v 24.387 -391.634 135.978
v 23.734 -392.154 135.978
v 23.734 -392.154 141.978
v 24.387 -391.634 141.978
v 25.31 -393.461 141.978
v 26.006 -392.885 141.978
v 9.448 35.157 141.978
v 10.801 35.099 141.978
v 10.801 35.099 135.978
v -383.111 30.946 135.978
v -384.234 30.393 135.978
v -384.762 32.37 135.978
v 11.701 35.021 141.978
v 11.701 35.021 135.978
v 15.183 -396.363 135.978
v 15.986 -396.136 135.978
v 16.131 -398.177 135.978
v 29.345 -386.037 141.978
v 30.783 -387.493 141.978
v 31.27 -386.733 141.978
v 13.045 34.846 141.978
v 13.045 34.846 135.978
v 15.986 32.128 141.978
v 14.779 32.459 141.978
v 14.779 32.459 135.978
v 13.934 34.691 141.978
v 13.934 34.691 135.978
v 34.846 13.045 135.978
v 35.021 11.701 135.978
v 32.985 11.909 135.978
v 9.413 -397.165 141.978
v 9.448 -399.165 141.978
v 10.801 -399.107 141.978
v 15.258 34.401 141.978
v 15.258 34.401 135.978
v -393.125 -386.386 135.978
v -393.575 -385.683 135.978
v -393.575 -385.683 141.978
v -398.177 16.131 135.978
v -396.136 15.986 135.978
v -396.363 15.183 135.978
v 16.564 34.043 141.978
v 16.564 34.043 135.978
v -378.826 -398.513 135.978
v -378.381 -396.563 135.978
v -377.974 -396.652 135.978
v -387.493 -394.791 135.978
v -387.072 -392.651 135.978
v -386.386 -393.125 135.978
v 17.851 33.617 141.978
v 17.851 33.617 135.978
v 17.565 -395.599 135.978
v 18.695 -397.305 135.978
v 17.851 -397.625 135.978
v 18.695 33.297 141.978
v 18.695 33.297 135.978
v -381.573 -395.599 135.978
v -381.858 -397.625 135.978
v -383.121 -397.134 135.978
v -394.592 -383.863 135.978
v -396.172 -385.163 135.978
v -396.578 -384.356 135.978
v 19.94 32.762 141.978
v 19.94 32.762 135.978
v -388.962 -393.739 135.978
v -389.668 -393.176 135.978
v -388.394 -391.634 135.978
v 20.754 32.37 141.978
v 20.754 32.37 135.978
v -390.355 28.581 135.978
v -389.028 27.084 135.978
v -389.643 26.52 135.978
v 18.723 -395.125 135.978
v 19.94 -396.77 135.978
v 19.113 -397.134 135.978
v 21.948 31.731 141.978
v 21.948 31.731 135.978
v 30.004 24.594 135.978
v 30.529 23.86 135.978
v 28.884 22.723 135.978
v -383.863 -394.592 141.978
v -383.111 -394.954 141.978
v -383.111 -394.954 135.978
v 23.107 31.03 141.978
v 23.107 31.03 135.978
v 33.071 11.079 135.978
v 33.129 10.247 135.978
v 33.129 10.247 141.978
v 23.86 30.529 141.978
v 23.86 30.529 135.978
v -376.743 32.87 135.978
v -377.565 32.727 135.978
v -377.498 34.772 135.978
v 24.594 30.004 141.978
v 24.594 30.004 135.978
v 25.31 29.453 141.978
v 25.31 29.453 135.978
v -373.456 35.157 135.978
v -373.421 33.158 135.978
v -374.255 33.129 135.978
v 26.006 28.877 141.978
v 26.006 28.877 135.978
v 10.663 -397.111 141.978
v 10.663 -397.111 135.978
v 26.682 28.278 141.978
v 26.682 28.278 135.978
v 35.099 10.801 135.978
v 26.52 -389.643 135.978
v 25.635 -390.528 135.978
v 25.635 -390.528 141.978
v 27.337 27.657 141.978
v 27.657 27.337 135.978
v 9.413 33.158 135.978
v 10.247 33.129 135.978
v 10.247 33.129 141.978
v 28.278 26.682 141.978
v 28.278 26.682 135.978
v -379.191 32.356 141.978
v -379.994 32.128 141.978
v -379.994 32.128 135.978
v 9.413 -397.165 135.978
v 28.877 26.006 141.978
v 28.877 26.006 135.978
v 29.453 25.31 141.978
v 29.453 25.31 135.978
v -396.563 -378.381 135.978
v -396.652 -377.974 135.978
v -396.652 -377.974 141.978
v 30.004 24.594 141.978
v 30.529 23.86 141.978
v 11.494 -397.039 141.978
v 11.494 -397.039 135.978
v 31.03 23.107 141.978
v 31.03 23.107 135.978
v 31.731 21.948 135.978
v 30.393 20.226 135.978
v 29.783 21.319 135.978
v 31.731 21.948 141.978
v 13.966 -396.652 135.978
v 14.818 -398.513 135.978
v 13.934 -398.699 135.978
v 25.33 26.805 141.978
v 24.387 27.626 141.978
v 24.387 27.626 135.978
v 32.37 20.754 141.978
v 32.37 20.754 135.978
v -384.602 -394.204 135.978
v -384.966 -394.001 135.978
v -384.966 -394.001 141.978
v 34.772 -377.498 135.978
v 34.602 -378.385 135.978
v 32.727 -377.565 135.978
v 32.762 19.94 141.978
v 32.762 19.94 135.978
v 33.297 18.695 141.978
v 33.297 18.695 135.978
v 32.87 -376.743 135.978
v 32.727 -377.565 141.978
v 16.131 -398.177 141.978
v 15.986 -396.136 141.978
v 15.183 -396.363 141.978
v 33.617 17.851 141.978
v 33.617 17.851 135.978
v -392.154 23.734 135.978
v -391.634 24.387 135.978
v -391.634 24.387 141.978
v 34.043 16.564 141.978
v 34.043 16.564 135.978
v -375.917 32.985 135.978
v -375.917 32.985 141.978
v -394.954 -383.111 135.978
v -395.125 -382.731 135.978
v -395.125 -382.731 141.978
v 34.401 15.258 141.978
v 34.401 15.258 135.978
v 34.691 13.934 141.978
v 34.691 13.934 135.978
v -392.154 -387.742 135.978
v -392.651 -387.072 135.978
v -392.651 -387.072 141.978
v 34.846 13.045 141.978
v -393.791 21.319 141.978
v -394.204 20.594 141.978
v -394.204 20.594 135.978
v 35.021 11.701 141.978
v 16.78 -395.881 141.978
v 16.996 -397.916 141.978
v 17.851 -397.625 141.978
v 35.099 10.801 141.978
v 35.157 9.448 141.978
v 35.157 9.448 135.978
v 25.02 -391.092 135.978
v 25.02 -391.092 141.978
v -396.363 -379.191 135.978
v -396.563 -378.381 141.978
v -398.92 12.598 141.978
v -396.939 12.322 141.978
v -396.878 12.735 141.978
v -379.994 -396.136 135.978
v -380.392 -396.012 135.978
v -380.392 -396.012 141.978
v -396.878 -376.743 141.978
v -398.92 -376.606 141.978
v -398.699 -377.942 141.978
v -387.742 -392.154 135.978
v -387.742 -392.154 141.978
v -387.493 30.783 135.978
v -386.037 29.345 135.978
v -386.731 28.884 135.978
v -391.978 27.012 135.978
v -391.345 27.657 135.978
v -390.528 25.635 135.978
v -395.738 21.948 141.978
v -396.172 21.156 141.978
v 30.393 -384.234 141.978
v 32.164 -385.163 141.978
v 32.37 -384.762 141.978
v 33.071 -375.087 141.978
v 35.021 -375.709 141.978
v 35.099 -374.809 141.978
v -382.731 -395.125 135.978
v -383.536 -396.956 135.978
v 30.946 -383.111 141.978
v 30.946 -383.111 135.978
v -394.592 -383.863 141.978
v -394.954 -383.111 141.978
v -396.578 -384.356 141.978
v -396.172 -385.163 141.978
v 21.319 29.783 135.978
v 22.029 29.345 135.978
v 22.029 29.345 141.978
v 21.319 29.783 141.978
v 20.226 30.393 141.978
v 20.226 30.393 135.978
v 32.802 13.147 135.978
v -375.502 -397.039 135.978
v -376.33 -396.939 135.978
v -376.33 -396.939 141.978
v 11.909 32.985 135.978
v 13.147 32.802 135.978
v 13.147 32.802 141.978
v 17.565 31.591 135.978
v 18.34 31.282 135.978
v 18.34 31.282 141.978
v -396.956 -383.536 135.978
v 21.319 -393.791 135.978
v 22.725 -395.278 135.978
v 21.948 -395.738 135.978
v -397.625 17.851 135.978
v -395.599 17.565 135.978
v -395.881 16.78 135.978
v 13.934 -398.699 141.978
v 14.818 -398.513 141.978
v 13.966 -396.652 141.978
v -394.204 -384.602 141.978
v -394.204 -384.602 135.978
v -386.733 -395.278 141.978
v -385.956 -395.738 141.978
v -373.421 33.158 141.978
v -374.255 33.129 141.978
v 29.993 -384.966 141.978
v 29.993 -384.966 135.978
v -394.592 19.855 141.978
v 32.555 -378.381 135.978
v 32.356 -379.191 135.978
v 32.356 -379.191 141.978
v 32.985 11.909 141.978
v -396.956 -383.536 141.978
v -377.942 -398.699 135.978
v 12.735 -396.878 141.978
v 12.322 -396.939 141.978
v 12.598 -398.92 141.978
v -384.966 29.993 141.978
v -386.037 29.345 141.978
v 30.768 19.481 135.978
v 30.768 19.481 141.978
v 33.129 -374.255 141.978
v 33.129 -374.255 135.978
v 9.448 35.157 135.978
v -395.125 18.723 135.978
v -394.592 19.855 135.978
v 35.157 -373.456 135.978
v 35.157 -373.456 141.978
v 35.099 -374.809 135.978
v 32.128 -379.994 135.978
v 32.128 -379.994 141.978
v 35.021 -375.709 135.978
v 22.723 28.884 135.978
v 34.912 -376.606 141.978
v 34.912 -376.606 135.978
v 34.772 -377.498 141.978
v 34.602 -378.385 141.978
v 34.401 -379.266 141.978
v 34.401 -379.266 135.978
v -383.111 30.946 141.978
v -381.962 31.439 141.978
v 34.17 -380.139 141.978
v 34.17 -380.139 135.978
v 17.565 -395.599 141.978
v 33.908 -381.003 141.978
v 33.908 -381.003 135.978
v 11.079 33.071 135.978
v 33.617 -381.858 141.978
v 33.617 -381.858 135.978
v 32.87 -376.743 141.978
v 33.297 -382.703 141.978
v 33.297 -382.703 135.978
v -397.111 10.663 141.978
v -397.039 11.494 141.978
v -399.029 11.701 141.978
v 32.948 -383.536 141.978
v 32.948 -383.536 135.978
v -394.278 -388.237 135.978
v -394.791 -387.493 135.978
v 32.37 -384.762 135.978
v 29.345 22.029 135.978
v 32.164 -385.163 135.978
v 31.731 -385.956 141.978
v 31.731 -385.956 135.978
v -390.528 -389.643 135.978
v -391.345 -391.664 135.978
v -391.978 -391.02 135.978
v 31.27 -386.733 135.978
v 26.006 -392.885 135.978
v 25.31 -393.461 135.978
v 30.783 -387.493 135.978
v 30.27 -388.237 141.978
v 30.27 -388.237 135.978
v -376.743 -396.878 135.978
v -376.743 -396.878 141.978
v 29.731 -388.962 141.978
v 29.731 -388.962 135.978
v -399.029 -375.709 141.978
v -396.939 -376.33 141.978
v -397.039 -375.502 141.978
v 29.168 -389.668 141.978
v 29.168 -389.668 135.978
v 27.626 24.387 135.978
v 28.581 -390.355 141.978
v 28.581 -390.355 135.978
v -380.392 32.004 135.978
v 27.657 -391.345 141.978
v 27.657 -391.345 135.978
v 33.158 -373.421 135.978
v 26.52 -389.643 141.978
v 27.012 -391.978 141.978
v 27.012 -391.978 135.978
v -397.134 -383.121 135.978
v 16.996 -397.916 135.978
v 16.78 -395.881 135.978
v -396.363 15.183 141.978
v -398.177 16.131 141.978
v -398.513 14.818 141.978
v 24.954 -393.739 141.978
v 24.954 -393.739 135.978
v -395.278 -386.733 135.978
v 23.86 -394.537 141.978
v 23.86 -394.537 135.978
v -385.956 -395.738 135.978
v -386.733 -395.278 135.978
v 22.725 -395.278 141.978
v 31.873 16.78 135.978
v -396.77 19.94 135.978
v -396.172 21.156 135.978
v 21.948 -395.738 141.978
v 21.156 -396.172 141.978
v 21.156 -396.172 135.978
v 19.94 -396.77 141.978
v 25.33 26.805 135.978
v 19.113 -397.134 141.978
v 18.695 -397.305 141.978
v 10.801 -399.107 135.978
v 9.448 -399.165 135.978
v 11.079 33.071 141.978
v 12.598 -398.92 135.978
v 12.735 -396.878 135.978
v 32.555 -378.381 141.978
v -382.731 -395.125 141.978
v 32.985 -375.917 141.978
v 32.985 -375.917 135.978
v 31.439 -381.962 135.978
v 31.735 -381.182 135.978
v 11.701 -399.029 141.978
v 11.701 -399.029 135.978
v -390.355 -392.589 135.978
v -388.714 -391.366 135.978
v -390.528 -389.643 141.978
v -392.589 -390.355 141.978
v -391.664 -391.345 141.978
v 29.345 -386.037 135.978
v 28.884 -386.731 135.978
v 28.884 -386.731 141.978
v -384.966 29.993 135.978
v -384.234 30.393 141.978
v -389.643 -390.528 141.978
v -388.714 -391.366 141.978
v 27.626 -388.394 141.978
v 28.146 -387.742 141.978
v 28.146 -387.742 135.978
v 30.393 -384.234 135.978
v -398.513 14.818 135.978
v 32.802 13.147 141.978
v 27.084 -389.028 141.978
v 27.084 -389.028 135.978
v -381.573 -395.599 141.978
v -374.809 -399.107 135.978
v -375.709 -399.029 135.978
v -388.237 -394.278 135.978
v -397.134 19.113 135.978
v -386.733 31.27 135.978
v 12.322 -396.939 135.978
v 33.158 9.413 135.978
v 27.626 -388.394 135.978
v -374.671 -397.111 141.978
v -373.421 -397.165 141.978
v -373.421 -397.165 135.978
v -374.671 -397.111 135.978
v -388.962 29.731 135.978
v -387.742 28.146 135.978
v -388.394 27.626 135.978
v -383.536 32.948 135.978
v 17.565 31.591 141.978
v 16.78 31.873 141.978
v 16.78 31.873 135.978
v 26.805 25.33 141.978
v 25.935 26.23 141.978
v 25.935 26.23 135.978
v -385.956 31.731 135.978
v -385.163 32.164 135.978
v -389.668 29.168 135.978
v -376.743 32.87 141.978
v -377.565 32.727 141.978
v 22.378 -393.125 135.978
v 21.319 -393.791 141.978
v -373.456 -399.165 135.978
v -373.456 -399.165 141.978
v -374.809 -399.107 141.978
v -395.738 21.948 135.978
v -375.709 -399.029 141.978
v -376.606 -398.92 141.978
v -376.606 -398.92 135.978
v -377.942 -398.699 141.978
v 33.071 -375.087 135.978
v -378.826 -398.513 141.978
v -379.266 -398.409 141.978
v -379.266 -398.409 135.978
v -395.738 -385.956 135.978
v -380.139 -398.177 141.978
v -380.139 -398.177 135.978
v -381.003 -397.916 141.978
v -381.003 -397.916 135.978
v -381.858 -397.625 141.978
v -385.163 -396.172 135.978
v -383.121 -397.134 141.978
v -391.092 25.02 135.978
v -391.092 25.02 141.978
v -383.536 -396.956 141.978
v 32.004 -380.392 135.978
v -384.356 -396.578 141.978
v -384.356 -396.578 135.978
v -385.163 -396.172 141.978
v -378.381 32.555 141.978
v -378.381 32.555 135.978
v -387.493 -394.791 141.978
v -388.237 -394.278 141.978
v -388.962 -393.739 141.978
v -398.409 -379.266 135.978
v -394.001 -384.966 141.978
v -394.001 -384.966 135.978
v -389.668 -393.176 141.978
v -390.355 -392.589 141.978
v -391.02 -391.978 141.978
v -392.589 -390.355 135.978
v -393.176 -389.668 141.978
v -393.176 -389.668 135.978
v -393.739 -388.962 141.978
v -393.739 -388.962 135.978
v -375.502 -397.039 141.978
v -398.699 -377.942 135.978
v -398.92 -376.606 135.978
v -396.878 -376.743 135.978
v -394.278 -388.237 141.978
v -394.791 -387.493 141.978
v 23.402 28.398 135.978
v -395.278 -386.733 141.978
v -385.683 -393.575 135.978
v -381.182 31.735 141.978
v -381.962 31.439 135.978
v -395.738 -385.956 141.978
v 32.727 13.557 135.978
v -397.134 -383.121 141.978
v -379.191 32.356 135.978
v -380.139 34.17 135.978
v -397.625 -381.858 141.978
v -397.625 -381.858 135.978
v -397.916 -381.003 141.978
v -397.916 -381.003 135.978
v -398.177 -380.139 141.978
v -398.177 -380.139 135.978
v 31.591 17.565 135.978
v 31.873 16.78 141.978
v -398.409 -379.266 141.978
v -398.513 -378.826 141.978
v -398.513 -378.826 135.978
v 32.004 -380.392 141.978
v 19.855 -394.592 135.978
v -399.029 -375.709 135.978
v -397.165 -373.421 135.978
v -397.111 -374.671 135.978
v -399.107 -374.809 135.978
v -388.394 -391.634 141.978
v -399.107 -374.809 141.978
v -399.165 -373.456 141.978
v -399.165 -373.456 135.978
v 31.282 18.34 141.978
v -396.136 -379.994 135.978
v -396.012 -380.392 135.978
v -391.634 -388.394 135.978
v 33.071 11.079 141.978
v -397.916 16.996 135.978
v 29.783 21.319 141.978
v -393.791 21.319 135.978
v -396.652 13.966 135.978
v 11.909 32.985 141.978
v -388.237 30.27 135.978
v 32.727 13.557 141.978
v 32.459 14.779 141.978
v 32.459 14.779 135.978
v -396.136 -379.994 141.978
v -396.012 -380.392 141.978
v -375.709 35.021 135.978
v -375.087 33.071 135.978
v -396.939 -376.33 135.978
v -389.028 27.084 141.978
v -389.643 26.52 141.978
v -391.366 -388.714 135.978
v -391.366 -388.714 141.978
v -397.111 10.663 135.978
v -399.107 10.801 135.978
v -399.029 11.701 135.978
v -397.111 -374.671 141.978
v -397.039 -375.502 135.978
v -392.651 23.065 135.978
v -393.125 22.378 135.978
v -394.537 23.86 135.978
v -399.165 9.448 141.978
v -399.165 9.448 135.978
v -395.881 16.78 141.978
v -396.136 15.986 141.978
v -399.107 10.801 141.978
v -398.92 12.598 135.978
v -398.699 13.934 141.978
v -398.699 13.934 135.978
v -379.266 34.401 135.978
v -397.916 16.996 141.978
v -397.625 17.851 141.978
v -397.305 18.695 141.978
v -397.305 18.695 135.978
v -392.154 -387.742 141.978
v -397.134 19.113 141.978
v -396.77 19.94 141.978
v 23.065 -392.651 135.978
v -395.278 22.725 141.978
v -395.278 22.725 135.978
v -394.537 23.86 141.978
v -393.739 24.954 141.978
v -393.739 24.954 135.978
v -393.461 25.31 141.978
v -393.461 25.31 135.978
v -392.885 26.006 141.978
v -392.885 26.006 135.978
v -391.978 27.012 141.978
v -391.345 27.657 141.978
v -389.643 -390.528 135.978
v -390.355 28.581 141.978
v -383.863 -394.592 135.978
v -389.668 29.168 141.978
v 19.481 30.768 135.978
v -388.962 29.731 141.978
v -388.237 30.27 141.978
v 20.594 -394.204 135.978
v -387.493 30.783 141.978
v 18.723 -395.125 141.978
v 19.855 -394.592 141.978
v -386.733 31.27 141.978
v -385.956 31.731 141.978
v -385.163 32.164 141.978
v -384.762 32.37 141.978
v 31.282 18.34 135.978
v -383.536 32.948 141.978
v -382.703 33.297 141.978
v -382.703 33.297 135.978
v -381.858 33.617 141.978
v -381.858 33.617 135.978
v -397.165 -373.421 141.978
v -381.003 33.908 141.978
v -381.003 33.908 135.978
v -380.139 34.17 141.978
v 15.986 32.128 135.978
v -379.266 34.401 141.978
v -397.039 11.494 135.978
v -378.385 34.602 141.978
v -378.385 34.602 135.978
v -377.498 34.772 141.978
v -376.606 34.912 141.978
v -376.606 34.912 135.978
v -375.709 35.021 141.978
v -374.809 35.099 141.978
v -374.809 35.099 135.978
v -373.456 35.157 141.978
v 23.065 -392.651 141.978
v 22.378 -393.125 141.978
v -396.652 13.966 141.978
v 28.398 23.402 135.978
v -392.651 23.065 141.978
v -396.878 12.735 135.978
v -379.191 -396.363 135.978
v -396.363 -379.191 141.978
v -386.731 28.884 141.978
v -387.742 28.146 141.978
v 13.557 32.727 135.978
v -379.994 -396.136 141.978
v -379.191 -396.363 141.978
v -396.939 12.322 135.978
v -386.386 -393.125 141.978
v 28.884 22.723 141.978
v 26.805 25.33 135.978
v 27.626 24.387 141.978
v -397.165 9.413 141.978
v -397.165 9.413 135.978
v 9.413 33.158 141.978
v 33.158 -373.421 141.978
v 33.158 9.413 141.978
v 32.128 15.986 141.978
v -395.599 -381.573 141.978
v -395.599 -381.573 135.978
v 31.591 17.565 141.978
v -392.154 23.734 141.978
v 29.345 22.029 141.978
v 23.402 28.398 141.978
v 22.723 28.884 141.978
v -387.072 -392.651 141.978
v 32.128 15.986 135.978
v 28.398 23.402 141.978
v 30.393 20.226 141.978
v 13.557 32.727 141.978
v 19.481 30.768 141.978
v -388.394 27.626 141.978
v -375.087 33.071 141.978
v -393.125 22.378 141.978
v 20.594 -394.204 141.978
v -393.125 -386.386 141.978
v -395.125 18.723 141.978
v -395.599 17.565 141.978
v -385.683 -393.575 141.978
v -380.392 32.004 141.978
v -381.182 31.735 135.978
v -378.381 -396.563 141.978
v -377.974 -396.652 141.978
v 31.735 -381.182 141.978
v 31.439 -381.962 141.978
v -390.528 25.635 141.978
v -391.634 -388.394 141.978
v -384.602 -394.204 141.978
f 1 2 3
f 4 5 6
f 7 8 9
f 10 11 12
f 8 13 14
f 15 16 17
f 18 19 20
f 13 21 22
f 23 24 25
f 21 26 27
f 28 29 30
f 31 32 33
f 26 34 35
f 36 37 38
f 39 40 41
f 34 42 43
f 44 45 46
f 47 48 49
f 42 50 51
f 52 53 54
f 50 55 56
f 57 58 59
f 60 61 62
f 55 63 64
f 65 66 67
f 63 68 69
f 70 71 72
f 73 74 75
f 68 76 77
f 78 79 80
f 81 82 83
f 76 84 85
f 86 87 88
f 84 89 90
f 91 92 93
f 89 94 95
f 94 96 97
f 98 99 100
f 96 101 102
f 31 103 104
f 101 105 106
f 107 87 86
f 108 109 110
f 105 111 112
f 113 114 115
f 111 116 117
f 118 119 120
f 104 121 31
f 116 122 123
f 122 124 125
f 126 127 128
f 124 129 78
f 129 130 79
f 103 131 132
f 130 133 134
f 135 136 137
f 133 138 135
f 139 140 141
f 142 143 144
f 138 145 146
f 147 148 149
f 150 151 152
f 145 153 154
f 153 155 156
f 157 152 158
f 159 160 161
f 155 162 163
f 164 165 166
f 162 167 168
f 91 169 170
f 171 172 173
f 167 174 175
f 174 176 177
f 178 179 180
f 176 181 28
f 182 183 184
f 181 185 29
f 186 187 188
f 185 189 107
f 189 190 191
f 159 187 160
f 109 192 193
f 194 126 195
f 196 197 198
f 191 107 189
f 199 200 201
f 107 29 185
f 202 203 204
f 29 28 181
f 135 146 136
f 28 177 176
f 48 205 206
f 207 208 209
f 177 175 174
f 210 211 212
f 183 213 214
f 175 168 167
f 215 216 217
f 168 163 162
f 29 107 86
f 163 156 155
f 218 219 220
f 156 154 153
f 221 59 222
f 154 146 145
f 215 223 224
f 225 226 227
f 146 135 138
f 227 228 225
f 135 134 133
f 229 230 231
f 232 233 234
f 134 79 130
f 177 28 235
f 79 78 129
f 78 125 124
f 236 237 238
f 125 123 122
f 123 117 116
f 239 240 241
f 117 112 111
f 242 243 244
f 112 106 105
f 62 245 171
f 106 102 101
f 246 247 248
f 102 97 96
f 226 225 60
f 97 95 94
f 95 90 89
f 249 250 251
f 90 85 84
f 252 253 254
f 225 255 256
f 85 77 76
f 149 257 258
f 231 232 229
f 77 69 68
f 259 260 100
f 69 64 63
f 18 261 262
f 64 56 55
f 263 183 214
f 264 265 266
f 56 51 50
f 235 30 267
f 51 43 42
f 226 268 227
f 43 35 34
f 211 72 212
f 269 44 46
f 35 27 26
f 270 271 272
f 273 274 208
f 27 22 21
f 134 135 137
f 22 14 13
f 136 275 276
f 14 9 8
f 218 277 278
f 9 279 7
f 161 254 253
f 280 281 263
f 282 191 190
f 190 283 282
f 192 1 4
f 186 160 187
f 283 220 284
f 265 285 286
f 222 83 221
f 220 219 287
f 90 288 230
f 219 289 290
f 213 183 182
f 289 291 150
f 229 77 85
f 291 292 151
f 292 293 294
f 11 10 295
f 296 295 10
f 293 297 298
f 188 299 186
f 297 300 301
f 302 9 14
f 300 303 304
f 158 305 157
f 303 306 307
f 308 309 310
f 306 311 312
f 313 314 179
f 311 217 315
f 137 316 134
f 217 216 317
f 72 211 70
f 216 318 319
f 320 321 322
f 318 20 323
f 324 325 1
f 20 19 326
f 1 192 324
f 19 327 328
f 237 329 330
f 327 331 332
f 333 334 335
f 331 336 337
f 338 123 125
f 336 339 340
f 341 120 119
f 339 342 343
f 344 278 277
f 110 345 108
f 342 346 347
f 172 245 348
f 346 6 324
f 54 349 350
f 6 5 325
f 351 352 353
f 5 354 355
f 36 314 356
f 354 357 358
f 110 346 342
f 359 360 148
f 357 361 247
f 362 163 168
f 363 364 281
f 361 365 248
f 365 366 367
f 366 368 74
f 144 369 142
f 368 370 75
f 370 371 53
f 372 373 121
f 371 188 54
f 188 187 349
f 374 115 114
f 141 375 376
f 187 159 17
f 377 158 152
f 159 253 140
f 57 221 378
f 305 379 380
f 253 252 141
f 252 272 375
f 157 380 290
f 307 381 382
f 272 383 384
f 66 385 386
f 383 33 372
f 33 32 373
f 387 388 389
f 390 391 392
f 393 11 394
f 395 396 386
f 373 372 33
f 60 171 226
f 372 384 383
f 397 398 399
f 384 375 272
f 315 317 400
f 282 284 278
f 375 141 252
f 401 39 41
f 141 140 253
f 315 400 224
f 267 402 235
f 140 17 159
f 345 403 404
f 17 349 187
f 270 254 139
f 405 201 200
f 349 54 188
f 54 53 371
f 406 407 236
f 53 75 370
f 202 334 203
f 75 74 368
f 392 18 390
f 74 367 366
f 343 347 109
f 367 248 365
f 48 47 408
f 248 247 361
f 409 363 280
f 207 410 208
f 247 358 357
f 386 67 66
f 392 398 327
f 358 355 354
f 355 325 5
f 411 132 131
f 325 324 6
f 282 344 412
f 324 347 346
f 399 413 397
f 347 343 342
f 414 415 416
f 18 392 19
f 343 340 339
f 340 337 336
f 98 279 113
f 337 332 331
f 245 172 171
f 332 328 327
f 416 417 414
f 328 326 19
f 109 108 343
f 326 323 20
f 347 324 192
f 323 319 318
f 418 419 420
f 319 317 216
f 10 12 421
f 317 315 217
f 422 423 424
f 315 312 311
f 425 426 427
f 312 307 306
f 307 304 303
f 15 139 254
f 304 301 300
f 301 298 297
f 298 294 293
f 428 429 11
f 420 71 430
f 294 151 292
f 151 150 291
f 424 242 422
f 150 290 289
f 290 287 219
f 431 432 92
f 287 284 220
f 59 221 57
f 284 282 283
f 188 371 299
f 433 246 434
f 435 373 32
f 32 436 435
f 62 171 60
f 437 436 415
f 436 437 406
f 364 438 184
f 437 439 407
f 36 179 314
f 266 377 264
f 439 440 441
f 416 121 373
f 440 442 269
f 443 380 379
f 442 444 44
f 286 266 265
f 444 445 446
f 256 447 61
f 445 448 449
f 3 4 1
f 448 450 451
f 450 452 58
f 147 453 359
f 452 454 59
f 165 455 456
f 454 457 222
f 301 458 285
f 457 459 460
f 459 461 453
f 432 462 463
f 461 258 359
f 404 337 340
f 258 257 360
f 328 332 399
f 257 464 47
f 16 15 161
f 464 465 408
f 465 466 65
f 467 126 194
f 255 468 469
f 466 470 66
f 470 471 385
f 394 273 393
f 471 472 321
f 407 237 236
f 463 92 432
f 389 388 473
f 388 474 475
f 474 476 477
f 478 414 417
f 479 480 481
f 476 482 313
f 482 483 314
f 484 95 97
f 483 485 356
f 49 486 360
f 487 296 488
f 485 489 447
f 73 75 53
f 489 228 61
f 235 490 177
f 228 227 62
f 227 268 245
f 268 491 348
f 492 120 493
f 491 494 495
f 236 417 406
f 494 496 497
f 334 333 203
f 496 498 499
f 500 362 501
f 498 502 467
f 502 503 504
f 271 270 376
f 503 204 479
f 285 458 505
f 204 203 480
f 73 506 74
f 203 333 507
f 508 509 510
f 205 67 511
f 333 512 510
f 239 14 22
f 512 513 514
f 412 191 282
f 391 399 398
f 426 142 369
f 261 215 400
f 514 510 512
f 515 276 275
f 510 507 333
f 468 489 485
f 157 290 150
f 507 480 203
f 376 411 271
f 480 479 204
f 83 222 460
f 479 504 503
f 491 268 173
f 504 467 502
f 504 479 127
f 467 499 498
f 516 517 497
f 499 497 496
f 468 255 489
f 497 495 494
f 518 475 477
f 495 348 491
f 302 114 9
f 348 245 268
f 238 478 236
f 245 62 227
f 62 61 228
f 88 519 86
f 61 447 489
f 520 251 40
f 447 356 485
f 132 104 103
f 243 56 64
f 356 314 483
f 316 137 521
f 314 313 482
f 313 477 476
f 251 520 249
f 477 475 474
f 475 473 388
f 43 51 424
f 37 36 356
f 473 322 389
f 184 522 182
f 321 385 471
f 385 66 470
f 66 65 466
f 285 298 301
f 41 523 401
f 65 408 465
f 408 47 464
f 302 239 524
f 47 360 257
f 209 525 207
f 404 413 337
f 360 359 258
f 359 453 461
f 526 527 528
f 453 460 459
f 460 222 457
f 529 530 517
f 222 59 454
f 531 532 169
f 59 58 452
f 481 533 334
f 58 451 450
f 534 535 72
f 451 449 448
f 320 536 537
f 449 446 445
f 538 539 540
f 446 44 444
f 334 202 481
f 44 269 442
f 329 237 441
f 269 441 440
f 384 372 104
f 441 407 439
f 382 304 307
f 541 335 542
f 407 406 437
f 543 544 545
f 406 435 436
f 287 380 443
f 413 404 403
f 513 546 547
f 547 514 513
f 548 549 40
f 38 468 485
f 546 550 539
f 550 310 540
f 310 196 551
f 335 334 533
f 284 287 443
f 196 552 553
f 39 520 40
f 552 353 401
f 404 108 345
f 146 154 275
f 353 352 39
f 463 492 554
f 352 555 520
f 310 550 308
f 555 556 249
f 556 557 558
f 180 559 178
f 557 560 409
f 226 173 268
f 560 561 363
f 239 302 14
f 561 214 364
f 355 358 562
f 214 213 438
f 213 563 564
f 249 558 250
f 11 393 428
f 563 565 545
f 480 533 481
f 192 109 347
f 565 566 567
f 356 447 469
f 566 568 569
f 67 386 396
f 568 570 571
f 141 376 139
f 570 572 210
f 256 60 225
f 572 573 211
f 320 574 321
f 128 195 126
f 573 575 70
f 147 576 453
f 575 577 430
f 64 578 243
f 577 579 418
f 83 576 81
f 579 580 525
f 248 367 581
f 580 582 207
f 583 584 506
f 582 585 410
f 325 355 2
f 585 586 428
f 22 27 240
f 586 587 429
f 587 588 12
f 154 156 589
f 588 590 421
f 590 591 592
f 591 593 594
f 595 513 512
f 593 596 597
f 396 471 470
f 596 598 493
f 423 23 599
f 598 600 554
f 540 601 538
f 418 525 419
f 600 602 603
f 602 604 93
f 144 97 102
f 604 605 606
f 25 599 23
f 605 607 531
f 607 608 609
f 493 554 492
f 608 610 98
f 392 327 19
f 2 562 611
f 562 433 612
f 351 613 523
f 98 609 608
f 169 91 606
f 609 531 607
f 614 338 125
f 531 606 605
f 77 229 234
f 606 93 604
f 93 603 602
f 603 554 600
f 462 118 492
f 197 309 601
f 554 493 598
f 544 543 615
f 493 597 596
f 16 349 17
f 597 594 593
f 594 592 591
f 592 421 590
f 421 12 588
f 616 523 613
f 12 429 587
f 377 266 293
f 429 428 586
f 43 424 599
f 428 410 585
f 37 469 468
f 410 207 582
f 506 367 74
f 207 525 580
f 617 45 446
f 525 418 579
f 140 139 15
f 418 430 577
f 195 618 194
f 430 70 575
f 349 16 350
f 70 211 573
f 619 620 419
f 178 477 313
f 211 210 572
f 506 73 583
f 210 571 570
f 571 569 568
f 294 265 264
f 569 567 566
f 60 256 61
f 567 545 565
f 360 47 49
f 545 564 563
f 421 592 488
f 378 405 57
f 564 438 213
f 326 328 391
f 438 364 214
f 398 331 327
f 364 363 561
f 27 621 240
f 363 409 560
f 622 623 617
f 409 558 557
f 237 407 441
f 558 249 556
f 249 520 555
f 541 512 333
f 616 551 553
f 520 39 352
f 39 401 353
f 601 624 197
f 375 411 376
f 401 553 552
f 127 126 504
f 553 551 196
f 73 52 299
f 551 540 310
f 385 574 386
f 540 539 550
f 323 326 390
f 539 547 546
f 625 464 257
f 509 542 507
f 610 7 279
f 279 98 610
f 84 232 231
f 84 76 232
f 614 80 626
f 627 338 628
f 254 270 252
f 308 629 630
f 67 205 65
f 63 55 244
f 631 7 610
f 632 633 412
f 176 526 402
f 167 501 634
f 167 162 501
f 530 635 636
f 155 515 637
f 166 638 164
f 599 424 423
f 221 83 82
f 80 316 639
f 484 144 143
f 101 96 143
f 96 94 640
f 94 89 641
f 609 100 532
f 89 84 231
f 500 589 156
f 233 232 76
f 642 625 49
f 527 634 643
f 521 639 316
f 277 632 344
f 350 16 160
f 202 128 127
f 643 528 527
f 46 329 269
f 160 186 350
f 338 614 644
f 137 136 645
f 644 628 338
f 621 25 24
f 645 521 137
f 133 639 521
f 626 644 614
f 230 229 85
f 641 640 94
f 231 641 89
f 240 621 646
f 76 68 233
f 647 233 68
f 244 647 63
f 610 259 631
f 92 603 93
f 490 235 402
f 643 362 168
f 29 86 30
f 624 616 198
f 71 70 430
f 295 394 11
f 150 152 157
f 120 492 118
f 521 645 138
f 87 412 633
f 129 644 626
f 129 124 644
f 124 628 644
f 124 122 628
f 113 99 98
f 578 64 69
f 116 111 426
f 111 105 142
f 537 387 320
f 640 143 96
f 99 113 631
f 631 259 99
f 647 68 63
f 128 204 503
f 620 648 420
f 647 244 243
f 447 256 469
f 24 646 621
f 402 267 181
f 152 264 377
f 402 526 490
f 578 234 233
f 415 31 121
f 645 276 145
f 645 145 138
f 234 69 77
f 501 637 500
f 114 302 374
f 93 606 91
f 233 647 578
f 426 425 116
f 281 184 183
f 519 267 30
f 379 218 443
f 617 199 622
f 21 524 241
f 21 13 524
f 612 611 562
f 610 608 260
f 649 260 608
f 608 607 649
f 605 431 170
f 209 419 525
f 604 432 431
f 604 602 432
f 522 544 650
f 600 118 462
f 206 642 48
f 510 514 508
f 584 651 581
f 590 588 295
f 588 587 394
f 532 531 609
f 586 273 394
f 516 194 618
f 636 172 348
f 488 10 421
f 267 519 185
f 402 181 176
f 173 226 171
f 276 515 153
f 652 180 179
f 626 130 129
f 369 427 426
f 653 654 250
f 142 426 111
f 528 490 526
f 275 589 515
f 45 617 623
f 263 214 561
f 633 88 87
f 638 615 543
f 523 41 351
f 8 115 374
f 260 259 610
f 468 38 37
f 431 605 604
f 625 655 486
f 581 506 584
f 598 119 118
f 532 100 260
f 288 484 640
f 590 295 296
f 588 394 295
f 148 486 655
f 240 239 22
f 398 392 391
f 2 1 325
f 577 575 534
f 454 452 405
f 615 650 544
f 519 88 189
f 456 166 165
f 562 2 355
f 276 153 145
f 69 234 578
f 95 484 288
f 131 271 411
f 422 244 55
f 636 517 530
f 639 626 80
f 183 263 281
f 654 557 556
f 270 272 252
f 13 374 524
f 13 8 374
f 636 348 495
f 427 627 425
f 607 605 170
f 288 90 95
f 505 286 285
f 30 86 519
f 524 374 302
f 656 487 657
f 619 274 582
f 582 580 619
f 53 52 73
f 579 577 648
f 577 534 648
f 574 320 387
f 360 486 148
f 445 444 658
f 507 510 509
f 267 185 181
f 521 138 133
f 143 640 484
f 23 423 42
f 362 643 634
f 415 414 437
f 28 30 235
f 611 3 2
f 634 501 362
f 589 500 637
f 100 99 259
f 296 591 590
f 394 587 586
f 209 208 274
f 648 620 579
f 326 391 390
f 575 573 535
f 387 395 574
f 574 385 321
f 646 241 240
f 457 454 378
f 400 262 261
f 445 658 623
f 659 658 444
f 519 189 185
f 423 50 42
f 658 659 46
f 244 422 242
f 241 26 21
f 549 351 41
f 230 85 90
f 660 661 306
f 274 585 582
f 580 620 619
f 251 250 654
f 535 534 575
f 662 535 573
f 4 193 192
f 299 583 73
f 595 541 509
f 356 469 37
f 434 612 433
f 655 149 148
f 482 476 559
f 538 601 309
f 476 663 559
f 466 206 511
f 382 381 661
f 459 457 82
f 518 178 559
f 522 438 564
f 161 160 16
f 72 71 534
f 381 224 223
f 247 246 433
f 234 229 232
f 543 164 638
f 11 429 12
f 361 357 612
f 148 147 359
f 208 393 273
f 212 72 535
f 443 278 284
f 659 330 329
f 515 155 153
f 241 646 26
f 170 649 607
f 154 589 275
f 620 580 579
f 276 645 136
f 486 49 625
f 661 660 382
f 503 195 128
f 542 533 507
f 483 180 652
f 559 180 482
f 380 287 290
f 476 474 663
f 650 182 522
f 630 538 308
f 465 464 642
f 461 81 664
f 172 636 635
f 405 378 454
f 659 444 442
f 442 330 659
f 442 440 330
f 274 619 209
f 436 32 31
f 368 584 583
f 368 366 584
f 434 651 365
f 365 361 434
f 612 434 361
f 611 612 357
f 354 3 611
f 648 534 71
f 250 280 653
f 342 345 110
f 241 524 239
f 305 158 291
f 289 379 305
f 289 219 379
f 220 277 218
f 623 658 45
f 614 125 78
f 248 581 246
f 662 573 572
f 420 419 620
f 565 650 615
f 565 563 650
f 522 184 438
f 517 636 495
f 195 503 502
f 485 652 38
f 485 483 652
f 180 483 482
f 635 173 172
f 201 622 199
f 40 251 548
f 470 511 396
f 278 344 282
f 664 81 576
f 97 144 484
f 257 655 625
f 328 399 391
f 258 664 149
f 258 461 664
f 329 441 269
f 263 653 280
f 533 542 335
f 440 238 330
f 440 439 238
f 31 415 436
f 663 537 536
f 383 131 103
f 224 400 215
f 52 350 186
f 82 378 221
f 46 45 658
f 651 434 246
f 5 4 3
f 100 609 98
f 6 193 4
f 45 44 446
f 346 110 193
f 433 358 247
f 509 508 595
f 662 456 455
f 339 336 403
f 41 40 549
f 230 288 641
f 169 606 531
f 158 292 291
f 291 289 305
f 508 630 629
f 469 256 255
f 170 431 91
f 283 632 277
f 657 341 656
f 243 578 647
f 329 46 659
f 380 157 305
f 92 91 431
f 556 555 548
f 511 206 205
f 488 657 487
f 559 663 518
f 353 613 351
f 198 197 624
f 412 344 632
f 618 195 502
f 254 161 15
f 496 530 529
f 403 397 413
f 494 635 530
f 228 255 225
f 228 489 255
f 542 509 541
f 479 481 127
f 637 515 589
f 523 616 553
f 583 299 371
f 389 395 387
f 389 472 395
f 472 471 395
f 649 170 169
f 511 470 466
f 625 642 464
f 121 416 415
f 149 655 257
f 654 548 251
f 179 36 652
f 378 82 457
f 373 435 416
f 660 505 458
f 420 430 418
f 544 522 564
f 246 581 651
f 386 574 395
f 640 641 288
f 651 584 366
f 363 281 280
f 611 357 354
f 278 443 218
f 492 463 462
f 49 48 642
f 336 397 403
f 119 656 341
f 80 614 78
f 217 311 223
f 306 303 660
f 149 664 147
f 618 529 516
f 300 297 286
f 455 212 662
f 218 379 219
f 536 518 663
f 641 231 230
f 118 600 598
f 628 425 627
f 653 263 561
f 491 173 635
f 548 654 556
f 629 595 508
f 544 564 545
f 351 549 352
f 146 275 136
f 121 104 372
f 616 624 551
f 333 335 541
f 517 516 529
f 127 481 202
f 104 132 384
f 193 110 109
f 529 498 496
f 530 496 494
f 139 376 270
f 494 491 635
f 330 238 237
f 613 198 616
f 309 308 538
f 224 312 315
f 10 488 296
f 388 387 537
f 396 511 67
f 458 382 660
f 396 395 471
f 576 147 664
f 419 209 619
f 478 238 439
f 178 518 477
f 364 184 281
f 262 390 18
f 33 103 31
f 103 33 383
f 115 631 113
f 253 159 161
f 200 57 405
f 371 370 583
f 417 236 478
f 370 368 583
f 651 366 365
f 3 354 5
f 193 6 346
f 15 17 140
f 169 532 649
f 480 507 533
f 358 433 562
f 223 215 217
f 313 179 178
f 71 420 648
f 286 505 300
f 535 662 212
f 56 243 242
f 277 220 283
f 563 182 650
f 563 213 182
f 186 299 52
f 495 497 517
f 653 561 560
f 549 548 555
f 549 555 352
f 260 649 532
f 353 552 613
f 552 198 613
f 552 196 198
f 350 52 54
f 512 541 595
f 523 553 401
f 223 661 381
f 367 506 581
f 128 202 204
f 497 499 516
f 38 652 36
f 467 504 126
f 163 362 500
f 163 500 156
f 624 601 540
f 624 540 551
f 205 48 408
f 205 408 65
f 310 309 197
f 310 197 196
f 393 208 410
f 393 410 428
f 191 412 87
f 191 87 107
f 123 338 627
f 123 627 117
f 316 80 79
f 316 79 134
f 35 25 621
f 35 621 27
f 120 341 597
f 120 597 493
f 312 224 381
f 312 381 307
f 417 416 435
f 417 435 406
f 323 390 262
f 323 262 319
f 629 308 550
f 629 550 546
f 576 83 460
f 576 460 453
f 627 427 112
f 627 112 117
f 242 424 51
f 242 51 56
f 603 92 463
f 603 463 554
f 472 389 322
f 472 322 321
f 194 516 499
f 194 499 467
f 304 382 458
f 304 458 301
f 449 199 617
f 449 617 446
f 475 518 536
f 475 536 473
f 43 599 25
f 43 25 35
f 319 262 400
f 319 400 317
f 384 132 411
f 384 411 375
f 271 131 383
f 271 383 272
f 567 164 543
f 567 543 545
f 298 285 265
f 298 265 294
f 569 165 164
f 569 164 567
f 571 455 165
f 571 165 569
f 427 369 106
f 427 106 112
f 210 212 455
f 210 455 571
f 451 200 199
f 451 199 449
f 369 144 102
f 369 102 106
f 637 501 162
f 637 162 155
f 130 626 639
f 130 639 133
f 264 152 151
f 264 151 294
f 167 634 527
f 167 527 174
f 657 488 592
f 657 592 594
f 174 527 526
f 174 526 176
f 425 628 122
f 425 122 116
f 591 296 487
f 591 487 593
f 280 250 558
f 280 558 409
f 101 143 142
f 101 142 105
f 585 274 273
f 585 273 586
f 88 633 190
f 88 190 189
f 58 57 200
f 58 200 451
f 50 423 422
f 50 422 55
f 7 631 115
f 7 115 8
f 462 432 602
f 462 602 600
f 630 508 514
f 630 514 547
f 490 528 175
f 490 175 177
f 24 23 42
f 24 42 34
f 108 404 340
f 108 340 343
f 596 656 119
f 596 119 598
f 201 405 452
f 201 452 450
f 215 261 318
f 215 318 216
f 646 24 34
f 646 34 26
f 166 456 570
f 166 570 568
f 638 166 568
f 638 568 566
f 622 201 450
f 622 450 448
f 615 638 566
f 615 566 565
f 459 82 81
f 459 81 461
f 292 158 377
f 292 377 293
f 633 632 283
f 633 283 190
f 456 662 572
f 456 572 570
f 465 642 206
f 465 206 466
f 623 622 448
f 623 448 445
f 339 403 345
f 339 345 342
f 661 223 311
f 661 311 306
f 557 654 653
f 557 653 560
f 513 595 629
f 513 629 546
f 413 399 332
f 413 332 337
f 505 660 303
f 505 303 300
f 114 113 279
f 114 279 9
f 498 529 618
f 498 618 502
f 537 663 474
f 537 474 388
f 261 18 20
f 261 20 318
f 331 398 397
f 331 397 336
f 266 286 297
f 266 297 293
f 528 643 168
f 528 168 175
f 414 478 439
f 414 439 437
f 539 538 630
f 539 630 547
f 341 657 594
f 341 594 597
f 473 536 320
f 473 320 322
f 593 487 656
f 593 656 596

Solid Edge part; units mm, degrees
sketch "Sketch1" plane through (0, 0, 135.9785) normal (0, 0, 1) x (1, 0, 0)
  line L0 (35.165, 9) -> (35.165, -373)
  arc A0 (35.165, -373) -> (9, -399.165) centre (9, -373) cw
  line L1 (9, -399.165) -> (-373, -399.165)
  arc A1 (-373, -399.165) -> (-399.165, -373) centre (-373, -373) cw
  line L2 (-399.165, -373) -> (-399.165, 9)
  arc A2 (-399.165, 9) -> (-373, 35.165) centre (-373, 9) cw
  line L3 (-373, 35.165) -> (9, 35.165)
  arc A3 (9, 35.165) -> (35.165, 9) centre (9, 9) cw
  line L4 (33.165, 9) -> (33.165, -373)
  line L5 (9, -397.165) -> (-373, -397.165)
  line L6 (-397.165, -373) -> (-397.165, 9)
  line L7 (-373, 33.165) -> (9, 33.165)
  arc A4 (33.165, -373) -> (9, -397.165) centre (9, -373) cw
  arc A5 (-373, -397.165) -> (-397.165, -373) centre (-373, -373) cw
  arc A6 (-397.165, 9) -> (-373, 33.165) centre (-373, 9) cw
  arc A7 (9, 33.165) -> (33.165, 9) centre (9, 9) cw
extrude "Protrusion1" add sketch "Sketch1" along normal blind 6
properties material "Polyurethene"
